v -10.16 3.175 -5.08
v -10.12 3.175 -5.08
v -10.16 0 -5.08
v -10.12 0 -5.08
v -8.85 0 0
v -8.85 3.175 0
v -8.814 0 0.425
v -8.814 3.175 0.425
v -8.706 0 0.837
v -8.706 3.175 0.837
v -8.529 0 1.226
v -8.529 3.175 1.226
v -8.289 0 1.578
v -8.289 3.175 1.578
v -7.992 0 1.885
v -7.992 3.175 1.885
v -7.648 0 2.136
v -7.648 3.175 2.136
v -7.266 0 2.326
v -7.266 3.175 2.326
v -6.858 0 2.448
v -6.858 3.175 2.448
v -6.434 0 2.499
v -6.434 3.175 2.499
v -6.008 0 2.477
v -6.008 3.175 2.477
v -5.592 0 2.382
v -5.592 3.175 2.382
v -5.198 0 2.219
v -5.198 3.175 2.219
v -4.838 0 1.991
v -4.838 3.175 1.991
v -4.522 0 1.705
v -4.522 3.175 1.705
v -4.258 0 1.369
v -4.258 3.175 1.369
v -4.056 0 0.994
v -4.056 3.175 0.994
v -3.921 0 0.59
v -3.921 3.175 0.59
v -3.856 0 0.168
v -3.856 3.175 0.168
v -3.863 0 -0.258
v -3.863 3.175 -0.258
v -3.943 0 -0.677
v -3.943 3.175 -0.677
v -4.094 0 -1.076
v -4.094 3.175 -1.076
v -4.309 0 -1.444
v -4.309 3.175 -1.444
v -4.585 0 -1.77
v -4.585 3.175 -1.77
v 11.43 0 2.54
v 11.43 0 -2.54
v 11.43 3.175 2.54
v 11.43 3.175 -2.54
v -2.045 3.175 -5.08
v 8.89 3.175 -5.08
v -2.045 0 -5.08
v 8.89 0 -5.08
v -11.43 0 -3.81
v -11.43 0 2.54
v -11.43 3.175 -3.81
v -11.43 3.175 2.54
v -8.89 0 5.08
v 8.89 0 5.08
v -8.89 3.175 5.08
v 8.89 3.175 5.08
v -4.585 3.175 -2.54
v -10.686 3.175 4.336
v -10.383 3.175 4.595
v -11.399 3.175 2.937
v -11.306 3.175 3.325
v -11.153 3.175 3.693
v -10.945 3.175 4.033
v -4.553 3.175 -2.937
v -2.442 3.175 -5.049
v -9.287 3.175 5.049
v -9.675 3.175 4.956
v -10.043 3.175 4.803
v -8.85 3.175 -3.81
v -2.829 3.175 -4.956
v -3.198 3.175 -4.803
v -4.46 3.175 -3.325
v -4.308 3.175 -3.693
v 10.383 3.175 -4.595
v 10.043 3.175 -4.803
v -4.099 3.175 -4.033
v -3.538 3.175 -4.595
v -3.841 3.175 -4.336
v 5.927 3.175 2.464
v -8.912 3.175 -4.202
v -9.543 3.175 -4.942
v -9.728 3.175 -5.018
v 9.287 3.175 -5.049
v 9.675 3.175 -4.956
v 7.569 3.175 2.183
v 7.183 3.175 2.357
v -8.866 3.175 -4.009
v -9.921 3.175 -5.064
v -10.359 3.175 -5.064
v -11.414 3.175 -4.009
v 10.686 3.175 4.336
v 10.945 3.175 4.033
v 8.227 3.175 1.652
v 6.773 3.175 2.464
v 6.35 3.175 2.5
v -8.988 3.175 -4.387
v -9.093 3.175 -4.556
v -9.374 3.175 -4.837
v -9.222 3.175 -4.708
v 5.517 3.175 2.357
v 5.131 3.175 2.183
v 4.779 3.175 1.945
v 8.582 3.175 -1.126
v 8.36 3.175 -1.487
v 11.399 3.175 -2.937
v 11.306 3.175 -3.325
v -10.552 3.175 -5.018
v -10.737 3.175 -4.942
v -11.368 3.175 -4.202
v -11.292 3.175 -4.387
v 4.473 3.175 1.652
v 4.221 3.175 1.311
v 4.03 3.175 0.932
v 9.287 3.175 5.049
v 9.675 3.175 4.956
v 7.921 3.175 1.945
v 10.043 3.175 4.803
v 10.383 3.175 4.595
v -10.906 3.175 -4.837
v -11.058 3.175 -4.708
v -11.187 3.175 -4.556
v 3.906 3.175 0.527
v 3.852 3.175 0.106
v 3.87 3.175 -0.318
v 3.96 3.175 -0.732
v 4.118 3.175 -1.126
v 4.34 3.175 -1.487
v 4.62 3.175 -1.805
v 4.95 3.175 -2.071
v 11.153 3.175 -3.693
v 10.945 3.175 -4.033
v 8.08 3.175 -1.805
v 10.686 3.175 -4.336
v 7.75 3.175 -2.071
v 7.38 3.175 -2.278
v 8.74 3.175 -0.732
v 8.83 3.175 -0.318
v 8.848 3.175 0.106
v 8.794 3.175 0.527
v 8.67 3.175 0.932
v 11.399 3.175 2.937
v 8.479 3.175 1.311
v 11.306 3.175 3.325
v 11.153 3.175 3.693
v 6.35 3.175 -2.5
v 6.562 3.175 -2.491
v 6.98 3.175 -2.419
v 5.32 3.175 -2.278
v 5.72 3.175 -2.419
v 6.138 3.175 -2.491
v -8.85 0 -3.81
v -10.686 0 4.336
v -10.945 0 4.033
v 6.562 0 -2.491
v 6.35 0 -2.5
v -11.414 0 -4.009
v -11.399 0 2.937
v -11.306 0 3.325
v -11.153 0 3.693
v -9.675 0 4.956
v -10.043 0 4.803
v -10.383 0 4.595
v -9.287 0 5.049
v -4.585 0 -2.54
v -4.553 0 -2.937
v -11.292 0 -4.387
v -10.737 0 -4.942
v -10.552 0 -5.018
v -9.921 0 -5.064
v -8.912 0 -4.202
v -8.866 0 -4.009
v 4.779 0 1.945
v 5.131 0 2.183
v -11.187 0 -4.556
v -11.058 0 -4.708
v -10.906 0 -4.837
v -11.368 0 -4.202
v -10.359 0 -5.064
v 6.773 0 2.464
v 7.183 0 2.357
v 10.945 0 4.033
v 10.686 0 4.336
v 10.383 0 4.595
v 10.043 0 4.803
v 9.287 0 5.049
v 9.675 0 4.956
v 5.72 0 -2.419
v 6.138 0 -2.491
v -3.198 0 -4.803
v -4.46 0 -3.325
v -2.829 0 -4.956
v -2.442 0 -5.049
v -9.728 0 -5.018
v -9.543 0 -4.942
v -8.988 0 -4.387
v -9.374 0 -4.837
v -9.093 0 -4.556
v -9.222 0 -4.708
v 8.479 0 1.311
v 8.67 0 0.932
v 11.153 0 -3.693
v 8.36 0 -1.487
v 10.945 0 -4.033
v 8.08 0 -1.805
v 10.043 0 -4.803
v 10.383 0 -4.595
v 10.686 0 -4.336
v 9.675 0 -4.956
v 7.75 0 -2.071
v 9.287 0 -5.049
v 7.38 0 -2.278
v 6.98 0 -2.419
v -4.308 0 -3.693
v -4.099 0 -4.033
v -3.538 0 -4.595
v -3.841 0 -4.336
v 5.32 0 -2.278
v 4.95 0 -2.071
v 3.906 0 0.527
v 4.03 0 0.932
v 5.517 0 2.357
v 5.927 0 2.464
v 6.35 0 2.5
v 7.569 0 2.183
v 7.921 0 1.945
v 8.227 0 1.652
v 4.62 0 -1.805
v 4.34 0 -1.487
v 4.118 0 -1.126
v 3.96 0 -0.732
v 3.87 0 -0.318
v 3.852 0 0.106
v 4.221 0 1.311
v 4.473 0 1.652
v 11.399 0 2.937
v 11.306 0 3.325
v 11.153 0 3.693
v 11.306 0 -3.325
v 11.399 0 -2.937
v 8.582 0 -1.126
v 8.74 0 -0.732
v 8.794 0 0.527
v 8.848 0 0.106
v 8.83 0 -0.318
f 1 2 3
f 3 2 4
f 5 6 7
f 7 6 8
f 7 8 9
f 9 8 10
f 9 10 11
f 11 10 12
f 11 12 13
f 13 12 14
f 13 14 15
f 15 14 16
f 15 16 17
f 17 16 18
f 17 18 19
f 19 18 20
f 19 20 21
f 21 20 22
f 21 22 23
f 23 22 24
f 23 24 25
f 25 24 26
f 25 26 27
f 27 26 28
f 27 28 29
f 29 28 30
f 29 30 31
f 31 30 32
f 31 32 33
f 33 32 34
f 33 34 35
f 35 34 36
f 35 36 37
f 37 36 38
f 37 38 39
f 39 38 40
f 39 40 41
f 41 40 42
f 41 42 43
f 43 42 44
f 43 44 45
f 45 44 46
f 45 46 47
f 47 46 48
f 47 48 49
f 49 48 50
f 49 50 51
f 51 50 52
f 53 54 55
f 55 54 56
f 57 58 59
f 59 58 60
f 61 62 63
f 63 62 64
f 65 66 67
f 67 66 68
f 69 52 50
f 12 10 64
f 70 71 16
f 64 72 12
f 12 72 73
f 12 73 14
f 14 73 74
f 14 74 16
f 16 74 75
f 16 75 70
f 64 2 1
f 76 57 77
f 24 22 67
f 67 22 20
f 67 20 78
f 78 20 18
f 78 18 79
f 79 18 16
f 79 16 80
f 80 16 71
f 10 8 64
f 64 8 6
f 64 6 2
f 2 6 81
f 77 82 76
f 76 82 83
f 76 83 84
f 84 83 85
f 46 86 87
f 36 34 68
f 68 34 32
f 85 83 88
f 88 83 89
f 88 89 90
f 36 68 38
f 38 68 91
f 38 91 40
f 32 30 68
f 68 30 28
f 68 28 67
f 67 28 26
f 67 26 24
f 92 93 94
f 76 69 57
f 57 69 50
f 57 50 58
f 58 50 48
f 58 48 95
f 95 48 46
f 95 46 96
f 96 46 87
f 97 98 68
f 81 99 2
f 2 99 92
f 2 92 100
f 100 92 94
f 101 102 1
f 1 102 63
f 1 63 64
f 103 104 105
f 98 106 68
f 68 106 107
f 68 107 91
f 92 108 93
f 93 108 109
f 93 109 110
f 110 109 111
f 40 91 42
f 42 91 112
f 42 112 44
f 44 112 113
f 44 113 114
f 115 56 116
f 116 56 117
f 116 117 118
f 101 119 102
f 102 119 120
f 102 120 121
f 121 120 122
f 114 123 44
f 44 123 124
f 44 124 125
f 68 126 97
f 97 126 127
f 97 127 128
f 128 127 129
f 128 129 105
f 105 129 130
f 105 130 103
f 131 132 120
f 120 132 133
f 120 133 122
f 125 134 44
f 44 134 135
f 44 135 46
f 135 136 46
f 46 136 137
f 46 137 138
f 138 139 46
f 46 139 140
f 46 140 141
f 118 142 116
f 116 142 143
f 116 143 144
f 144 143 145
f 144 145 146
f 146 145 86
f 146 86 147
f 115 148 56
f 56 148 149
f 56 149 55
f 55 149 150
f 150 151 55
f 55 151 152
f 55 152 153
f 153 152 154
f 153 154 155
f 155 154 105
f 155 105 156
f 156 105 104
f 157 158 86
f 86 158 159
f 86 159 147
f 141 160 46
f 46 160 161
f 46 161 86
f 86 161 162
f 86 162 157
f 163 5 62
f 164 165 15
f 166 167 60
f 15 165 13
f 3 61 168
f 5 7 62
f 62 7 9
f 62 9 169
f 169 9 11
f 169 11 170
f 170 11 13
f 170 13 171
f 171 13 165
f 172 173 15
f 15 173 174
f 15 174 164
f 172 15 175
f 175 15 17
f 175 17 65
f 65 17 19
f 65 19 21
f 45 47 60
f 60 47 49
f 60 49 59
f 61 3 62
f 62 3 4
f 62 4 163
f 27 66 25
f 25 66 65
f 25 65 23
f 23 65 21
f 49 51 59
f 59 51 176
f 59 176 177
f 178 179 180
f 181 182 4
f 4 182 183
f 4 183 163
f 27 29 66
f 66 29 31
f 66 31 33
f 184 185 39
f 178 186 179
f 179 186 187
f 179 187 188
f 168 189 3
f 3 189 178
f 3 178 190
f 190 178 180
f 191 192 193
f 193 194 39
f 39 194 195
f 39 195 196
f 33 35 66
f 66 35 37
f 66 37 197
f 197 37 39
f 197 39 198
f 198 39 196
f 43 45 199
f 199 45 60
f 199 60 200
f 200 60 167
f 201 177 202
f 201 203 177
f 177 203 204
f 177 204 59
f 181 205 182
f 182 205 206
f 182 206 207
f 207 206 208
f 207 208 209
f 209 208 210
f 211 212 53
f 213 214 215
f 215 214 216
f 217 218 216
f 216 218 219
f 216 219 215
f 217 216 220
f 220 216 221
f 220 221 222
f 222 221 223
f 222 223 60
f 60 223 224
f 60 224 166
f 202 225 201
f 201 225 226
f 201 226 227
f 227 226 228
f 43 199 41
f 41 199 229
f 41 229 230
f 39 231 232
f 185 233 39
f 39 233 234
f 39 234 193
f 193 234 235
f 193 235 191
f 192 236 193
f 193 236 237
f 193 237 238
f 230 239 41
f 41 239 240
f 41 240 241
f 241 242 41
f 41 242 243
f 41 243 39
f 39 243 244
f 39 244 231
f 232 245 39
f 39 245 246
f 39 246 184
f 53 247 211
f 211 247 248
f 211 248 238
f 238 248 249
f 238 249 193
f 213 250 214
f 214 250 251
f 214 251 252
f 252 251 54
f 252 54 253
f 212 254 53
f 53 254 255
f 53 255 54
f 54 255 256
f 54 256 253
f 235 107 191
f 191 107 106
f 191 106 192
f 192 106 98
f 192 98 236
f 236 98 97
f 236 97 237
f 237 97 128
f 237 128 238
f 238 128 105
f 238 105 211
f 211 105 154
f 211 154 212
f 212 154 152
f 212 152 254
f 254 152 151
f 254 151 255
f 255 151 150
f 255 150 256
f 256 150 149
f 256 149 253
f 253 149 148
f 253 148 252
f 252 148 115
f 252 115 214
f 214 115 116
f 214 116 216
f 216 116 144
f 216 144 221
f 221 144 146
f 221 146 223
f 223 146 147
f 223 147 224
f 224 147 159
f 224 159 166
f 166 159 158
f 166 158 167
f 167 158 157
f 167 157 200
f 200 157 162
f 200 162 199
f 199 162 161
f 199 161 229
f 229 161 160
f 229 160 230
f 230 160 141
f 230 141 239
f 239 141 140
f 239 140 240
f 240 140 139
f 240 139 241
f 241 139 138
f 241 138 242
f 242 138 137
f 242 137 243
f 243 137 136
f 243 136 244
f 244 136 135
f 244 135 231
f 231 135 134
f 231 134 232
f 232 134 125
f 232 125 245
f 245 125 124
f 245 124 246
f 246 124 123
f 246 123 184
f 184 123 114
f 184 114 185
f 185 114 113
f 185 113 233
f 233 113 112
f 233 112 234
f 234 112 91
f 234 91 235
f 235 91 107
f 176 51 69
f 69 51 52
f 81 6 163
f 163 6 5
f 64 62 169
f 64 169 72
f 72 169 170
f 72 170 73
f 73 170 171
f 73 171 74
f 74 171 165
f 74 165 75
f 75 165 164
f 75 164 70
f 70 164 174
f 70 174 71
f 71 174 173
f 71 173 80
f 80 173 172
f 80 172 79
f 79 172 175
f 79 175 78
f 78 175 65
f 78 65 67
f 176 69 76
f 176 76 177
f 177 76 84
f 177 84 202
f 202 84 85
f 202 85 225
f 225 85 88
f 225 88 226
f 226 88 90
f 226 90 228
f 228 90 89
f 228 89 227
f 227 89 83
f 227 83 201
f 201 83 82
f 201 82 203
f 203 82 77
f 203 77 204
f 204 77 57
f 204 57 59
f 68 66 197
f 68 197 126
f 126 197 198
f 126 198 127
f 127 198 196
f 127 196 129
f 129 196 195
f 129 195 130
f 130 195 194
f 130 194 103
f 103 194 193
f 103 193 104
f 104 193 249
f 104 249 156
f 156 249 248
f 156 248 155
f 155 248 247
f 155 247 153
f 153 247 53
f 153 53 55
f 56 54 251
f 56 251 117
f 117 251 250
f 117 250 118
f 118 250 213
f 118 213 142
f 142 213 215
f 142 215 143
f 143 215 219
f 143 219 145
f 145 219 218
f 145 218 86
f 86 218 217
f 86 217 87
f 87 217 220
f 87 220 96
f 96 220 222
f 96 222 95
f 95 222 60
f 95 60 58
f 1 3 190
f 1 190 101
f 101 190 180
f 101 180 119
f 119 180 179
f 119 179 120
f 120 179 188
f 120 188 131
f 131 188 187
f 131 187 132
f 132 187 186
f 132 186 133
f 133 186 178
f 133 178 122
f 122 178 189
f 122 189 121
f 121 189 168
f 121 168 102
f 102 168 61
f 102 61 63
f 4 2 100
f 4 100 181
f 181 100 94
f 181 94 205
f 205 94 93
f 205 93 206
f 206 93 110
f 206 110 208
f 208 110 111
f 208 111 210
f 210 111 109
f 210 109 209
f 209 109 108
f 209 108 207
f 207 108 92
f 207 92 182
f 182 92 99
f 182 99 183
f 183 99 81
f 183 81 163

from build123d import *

# Parameters (mm, degrees)
SKETCH1_W           = 22.86
SKETCH1_H           = 10.16
BOSS_EXTRUDE1_DEPTH = 3.175
SKETCH2_R           = 2.5
CUT_EXTRUDE1_DEPTH  = 4.175
CUT_EXTRUDE2_DEPTH  = 4.175
FILLET1_R           = 2.54
FILLET2_R           = 1.27


with BuildPart() as part:
    # Sketch1 → Boss-Extrude1 (new body)
    with BuildSketch(Plane(origin=(0, 0, 0), x_dir=(1, 0, 0), z_dir=(0, 1, 0))):
        Rectangle(SKETCH1_W, SKETCH1_H)
    extrude(amount=BOSS_EXTRUDE1_DEPTH)

    # Sketch2 → Cut-Extrude1 (cut, through all)
    with BuildSketch(Plane(origin=(0, 3.175, 0), x_dir=(1, 0, 0), z_dir=(0, 1, 0))):
        with Locations((-6.35, 0)):
            Circle(SKETCH2_R)
        with Locations((6.35, 0)):
            Circle(SKETCH2_R)
    extrude(amount=-CUT_EXTRUDE1_DEPTH, mode=Mode.SUBTRACT)

    # Sketch3 → Cut-Extrude2 (cut, through all)
    with BuildSketch(Plane(origin=(0, 3.175, 0), x_dir=(1, 0, 0), z_dir=(0, 1, 0))):
        with BuildLine():
            Line((-8.85, 0), (-8.85, 5.08))
            Line((-8.85, 5.08), (-4.584545949, 5.08))
            Line((-4.584545949, 5.08), (-4.584545949, 1.770076833))
            ThreePointArc((-4.584545949, 1.770076833), (-7.308218366, 2.30907288), (-8.85, 0))
        make_face()
    extrude(amount=-CUT_EXTRUDE2_DEPTH, mode=Mode.SUBTRACT)

    # Fillet1
    fillet1_edges = [part.edges().sort_by_distance(p)[0] for p in [
        (-4.584545949, 1.5875, -5.08),
        (11.43, 1.5875, 5.08),
        (-11.43, 1.5875, 5.08),
        (11.43, 1.5875, -5.08),
    ]]
    fillet(fillet1_edges, radius=FILLET1_R)

    # Fillet2
    fillet2_edges = [part.edges().sort_by_distance(p)[0] for p in [
        (-8.85, 1.5875, -5.08),
        (-11.43, 1.5875, -5.08),
    ]]
    fillet(fillet2_edges, radius=FILLET2_R)


solid = part.part
